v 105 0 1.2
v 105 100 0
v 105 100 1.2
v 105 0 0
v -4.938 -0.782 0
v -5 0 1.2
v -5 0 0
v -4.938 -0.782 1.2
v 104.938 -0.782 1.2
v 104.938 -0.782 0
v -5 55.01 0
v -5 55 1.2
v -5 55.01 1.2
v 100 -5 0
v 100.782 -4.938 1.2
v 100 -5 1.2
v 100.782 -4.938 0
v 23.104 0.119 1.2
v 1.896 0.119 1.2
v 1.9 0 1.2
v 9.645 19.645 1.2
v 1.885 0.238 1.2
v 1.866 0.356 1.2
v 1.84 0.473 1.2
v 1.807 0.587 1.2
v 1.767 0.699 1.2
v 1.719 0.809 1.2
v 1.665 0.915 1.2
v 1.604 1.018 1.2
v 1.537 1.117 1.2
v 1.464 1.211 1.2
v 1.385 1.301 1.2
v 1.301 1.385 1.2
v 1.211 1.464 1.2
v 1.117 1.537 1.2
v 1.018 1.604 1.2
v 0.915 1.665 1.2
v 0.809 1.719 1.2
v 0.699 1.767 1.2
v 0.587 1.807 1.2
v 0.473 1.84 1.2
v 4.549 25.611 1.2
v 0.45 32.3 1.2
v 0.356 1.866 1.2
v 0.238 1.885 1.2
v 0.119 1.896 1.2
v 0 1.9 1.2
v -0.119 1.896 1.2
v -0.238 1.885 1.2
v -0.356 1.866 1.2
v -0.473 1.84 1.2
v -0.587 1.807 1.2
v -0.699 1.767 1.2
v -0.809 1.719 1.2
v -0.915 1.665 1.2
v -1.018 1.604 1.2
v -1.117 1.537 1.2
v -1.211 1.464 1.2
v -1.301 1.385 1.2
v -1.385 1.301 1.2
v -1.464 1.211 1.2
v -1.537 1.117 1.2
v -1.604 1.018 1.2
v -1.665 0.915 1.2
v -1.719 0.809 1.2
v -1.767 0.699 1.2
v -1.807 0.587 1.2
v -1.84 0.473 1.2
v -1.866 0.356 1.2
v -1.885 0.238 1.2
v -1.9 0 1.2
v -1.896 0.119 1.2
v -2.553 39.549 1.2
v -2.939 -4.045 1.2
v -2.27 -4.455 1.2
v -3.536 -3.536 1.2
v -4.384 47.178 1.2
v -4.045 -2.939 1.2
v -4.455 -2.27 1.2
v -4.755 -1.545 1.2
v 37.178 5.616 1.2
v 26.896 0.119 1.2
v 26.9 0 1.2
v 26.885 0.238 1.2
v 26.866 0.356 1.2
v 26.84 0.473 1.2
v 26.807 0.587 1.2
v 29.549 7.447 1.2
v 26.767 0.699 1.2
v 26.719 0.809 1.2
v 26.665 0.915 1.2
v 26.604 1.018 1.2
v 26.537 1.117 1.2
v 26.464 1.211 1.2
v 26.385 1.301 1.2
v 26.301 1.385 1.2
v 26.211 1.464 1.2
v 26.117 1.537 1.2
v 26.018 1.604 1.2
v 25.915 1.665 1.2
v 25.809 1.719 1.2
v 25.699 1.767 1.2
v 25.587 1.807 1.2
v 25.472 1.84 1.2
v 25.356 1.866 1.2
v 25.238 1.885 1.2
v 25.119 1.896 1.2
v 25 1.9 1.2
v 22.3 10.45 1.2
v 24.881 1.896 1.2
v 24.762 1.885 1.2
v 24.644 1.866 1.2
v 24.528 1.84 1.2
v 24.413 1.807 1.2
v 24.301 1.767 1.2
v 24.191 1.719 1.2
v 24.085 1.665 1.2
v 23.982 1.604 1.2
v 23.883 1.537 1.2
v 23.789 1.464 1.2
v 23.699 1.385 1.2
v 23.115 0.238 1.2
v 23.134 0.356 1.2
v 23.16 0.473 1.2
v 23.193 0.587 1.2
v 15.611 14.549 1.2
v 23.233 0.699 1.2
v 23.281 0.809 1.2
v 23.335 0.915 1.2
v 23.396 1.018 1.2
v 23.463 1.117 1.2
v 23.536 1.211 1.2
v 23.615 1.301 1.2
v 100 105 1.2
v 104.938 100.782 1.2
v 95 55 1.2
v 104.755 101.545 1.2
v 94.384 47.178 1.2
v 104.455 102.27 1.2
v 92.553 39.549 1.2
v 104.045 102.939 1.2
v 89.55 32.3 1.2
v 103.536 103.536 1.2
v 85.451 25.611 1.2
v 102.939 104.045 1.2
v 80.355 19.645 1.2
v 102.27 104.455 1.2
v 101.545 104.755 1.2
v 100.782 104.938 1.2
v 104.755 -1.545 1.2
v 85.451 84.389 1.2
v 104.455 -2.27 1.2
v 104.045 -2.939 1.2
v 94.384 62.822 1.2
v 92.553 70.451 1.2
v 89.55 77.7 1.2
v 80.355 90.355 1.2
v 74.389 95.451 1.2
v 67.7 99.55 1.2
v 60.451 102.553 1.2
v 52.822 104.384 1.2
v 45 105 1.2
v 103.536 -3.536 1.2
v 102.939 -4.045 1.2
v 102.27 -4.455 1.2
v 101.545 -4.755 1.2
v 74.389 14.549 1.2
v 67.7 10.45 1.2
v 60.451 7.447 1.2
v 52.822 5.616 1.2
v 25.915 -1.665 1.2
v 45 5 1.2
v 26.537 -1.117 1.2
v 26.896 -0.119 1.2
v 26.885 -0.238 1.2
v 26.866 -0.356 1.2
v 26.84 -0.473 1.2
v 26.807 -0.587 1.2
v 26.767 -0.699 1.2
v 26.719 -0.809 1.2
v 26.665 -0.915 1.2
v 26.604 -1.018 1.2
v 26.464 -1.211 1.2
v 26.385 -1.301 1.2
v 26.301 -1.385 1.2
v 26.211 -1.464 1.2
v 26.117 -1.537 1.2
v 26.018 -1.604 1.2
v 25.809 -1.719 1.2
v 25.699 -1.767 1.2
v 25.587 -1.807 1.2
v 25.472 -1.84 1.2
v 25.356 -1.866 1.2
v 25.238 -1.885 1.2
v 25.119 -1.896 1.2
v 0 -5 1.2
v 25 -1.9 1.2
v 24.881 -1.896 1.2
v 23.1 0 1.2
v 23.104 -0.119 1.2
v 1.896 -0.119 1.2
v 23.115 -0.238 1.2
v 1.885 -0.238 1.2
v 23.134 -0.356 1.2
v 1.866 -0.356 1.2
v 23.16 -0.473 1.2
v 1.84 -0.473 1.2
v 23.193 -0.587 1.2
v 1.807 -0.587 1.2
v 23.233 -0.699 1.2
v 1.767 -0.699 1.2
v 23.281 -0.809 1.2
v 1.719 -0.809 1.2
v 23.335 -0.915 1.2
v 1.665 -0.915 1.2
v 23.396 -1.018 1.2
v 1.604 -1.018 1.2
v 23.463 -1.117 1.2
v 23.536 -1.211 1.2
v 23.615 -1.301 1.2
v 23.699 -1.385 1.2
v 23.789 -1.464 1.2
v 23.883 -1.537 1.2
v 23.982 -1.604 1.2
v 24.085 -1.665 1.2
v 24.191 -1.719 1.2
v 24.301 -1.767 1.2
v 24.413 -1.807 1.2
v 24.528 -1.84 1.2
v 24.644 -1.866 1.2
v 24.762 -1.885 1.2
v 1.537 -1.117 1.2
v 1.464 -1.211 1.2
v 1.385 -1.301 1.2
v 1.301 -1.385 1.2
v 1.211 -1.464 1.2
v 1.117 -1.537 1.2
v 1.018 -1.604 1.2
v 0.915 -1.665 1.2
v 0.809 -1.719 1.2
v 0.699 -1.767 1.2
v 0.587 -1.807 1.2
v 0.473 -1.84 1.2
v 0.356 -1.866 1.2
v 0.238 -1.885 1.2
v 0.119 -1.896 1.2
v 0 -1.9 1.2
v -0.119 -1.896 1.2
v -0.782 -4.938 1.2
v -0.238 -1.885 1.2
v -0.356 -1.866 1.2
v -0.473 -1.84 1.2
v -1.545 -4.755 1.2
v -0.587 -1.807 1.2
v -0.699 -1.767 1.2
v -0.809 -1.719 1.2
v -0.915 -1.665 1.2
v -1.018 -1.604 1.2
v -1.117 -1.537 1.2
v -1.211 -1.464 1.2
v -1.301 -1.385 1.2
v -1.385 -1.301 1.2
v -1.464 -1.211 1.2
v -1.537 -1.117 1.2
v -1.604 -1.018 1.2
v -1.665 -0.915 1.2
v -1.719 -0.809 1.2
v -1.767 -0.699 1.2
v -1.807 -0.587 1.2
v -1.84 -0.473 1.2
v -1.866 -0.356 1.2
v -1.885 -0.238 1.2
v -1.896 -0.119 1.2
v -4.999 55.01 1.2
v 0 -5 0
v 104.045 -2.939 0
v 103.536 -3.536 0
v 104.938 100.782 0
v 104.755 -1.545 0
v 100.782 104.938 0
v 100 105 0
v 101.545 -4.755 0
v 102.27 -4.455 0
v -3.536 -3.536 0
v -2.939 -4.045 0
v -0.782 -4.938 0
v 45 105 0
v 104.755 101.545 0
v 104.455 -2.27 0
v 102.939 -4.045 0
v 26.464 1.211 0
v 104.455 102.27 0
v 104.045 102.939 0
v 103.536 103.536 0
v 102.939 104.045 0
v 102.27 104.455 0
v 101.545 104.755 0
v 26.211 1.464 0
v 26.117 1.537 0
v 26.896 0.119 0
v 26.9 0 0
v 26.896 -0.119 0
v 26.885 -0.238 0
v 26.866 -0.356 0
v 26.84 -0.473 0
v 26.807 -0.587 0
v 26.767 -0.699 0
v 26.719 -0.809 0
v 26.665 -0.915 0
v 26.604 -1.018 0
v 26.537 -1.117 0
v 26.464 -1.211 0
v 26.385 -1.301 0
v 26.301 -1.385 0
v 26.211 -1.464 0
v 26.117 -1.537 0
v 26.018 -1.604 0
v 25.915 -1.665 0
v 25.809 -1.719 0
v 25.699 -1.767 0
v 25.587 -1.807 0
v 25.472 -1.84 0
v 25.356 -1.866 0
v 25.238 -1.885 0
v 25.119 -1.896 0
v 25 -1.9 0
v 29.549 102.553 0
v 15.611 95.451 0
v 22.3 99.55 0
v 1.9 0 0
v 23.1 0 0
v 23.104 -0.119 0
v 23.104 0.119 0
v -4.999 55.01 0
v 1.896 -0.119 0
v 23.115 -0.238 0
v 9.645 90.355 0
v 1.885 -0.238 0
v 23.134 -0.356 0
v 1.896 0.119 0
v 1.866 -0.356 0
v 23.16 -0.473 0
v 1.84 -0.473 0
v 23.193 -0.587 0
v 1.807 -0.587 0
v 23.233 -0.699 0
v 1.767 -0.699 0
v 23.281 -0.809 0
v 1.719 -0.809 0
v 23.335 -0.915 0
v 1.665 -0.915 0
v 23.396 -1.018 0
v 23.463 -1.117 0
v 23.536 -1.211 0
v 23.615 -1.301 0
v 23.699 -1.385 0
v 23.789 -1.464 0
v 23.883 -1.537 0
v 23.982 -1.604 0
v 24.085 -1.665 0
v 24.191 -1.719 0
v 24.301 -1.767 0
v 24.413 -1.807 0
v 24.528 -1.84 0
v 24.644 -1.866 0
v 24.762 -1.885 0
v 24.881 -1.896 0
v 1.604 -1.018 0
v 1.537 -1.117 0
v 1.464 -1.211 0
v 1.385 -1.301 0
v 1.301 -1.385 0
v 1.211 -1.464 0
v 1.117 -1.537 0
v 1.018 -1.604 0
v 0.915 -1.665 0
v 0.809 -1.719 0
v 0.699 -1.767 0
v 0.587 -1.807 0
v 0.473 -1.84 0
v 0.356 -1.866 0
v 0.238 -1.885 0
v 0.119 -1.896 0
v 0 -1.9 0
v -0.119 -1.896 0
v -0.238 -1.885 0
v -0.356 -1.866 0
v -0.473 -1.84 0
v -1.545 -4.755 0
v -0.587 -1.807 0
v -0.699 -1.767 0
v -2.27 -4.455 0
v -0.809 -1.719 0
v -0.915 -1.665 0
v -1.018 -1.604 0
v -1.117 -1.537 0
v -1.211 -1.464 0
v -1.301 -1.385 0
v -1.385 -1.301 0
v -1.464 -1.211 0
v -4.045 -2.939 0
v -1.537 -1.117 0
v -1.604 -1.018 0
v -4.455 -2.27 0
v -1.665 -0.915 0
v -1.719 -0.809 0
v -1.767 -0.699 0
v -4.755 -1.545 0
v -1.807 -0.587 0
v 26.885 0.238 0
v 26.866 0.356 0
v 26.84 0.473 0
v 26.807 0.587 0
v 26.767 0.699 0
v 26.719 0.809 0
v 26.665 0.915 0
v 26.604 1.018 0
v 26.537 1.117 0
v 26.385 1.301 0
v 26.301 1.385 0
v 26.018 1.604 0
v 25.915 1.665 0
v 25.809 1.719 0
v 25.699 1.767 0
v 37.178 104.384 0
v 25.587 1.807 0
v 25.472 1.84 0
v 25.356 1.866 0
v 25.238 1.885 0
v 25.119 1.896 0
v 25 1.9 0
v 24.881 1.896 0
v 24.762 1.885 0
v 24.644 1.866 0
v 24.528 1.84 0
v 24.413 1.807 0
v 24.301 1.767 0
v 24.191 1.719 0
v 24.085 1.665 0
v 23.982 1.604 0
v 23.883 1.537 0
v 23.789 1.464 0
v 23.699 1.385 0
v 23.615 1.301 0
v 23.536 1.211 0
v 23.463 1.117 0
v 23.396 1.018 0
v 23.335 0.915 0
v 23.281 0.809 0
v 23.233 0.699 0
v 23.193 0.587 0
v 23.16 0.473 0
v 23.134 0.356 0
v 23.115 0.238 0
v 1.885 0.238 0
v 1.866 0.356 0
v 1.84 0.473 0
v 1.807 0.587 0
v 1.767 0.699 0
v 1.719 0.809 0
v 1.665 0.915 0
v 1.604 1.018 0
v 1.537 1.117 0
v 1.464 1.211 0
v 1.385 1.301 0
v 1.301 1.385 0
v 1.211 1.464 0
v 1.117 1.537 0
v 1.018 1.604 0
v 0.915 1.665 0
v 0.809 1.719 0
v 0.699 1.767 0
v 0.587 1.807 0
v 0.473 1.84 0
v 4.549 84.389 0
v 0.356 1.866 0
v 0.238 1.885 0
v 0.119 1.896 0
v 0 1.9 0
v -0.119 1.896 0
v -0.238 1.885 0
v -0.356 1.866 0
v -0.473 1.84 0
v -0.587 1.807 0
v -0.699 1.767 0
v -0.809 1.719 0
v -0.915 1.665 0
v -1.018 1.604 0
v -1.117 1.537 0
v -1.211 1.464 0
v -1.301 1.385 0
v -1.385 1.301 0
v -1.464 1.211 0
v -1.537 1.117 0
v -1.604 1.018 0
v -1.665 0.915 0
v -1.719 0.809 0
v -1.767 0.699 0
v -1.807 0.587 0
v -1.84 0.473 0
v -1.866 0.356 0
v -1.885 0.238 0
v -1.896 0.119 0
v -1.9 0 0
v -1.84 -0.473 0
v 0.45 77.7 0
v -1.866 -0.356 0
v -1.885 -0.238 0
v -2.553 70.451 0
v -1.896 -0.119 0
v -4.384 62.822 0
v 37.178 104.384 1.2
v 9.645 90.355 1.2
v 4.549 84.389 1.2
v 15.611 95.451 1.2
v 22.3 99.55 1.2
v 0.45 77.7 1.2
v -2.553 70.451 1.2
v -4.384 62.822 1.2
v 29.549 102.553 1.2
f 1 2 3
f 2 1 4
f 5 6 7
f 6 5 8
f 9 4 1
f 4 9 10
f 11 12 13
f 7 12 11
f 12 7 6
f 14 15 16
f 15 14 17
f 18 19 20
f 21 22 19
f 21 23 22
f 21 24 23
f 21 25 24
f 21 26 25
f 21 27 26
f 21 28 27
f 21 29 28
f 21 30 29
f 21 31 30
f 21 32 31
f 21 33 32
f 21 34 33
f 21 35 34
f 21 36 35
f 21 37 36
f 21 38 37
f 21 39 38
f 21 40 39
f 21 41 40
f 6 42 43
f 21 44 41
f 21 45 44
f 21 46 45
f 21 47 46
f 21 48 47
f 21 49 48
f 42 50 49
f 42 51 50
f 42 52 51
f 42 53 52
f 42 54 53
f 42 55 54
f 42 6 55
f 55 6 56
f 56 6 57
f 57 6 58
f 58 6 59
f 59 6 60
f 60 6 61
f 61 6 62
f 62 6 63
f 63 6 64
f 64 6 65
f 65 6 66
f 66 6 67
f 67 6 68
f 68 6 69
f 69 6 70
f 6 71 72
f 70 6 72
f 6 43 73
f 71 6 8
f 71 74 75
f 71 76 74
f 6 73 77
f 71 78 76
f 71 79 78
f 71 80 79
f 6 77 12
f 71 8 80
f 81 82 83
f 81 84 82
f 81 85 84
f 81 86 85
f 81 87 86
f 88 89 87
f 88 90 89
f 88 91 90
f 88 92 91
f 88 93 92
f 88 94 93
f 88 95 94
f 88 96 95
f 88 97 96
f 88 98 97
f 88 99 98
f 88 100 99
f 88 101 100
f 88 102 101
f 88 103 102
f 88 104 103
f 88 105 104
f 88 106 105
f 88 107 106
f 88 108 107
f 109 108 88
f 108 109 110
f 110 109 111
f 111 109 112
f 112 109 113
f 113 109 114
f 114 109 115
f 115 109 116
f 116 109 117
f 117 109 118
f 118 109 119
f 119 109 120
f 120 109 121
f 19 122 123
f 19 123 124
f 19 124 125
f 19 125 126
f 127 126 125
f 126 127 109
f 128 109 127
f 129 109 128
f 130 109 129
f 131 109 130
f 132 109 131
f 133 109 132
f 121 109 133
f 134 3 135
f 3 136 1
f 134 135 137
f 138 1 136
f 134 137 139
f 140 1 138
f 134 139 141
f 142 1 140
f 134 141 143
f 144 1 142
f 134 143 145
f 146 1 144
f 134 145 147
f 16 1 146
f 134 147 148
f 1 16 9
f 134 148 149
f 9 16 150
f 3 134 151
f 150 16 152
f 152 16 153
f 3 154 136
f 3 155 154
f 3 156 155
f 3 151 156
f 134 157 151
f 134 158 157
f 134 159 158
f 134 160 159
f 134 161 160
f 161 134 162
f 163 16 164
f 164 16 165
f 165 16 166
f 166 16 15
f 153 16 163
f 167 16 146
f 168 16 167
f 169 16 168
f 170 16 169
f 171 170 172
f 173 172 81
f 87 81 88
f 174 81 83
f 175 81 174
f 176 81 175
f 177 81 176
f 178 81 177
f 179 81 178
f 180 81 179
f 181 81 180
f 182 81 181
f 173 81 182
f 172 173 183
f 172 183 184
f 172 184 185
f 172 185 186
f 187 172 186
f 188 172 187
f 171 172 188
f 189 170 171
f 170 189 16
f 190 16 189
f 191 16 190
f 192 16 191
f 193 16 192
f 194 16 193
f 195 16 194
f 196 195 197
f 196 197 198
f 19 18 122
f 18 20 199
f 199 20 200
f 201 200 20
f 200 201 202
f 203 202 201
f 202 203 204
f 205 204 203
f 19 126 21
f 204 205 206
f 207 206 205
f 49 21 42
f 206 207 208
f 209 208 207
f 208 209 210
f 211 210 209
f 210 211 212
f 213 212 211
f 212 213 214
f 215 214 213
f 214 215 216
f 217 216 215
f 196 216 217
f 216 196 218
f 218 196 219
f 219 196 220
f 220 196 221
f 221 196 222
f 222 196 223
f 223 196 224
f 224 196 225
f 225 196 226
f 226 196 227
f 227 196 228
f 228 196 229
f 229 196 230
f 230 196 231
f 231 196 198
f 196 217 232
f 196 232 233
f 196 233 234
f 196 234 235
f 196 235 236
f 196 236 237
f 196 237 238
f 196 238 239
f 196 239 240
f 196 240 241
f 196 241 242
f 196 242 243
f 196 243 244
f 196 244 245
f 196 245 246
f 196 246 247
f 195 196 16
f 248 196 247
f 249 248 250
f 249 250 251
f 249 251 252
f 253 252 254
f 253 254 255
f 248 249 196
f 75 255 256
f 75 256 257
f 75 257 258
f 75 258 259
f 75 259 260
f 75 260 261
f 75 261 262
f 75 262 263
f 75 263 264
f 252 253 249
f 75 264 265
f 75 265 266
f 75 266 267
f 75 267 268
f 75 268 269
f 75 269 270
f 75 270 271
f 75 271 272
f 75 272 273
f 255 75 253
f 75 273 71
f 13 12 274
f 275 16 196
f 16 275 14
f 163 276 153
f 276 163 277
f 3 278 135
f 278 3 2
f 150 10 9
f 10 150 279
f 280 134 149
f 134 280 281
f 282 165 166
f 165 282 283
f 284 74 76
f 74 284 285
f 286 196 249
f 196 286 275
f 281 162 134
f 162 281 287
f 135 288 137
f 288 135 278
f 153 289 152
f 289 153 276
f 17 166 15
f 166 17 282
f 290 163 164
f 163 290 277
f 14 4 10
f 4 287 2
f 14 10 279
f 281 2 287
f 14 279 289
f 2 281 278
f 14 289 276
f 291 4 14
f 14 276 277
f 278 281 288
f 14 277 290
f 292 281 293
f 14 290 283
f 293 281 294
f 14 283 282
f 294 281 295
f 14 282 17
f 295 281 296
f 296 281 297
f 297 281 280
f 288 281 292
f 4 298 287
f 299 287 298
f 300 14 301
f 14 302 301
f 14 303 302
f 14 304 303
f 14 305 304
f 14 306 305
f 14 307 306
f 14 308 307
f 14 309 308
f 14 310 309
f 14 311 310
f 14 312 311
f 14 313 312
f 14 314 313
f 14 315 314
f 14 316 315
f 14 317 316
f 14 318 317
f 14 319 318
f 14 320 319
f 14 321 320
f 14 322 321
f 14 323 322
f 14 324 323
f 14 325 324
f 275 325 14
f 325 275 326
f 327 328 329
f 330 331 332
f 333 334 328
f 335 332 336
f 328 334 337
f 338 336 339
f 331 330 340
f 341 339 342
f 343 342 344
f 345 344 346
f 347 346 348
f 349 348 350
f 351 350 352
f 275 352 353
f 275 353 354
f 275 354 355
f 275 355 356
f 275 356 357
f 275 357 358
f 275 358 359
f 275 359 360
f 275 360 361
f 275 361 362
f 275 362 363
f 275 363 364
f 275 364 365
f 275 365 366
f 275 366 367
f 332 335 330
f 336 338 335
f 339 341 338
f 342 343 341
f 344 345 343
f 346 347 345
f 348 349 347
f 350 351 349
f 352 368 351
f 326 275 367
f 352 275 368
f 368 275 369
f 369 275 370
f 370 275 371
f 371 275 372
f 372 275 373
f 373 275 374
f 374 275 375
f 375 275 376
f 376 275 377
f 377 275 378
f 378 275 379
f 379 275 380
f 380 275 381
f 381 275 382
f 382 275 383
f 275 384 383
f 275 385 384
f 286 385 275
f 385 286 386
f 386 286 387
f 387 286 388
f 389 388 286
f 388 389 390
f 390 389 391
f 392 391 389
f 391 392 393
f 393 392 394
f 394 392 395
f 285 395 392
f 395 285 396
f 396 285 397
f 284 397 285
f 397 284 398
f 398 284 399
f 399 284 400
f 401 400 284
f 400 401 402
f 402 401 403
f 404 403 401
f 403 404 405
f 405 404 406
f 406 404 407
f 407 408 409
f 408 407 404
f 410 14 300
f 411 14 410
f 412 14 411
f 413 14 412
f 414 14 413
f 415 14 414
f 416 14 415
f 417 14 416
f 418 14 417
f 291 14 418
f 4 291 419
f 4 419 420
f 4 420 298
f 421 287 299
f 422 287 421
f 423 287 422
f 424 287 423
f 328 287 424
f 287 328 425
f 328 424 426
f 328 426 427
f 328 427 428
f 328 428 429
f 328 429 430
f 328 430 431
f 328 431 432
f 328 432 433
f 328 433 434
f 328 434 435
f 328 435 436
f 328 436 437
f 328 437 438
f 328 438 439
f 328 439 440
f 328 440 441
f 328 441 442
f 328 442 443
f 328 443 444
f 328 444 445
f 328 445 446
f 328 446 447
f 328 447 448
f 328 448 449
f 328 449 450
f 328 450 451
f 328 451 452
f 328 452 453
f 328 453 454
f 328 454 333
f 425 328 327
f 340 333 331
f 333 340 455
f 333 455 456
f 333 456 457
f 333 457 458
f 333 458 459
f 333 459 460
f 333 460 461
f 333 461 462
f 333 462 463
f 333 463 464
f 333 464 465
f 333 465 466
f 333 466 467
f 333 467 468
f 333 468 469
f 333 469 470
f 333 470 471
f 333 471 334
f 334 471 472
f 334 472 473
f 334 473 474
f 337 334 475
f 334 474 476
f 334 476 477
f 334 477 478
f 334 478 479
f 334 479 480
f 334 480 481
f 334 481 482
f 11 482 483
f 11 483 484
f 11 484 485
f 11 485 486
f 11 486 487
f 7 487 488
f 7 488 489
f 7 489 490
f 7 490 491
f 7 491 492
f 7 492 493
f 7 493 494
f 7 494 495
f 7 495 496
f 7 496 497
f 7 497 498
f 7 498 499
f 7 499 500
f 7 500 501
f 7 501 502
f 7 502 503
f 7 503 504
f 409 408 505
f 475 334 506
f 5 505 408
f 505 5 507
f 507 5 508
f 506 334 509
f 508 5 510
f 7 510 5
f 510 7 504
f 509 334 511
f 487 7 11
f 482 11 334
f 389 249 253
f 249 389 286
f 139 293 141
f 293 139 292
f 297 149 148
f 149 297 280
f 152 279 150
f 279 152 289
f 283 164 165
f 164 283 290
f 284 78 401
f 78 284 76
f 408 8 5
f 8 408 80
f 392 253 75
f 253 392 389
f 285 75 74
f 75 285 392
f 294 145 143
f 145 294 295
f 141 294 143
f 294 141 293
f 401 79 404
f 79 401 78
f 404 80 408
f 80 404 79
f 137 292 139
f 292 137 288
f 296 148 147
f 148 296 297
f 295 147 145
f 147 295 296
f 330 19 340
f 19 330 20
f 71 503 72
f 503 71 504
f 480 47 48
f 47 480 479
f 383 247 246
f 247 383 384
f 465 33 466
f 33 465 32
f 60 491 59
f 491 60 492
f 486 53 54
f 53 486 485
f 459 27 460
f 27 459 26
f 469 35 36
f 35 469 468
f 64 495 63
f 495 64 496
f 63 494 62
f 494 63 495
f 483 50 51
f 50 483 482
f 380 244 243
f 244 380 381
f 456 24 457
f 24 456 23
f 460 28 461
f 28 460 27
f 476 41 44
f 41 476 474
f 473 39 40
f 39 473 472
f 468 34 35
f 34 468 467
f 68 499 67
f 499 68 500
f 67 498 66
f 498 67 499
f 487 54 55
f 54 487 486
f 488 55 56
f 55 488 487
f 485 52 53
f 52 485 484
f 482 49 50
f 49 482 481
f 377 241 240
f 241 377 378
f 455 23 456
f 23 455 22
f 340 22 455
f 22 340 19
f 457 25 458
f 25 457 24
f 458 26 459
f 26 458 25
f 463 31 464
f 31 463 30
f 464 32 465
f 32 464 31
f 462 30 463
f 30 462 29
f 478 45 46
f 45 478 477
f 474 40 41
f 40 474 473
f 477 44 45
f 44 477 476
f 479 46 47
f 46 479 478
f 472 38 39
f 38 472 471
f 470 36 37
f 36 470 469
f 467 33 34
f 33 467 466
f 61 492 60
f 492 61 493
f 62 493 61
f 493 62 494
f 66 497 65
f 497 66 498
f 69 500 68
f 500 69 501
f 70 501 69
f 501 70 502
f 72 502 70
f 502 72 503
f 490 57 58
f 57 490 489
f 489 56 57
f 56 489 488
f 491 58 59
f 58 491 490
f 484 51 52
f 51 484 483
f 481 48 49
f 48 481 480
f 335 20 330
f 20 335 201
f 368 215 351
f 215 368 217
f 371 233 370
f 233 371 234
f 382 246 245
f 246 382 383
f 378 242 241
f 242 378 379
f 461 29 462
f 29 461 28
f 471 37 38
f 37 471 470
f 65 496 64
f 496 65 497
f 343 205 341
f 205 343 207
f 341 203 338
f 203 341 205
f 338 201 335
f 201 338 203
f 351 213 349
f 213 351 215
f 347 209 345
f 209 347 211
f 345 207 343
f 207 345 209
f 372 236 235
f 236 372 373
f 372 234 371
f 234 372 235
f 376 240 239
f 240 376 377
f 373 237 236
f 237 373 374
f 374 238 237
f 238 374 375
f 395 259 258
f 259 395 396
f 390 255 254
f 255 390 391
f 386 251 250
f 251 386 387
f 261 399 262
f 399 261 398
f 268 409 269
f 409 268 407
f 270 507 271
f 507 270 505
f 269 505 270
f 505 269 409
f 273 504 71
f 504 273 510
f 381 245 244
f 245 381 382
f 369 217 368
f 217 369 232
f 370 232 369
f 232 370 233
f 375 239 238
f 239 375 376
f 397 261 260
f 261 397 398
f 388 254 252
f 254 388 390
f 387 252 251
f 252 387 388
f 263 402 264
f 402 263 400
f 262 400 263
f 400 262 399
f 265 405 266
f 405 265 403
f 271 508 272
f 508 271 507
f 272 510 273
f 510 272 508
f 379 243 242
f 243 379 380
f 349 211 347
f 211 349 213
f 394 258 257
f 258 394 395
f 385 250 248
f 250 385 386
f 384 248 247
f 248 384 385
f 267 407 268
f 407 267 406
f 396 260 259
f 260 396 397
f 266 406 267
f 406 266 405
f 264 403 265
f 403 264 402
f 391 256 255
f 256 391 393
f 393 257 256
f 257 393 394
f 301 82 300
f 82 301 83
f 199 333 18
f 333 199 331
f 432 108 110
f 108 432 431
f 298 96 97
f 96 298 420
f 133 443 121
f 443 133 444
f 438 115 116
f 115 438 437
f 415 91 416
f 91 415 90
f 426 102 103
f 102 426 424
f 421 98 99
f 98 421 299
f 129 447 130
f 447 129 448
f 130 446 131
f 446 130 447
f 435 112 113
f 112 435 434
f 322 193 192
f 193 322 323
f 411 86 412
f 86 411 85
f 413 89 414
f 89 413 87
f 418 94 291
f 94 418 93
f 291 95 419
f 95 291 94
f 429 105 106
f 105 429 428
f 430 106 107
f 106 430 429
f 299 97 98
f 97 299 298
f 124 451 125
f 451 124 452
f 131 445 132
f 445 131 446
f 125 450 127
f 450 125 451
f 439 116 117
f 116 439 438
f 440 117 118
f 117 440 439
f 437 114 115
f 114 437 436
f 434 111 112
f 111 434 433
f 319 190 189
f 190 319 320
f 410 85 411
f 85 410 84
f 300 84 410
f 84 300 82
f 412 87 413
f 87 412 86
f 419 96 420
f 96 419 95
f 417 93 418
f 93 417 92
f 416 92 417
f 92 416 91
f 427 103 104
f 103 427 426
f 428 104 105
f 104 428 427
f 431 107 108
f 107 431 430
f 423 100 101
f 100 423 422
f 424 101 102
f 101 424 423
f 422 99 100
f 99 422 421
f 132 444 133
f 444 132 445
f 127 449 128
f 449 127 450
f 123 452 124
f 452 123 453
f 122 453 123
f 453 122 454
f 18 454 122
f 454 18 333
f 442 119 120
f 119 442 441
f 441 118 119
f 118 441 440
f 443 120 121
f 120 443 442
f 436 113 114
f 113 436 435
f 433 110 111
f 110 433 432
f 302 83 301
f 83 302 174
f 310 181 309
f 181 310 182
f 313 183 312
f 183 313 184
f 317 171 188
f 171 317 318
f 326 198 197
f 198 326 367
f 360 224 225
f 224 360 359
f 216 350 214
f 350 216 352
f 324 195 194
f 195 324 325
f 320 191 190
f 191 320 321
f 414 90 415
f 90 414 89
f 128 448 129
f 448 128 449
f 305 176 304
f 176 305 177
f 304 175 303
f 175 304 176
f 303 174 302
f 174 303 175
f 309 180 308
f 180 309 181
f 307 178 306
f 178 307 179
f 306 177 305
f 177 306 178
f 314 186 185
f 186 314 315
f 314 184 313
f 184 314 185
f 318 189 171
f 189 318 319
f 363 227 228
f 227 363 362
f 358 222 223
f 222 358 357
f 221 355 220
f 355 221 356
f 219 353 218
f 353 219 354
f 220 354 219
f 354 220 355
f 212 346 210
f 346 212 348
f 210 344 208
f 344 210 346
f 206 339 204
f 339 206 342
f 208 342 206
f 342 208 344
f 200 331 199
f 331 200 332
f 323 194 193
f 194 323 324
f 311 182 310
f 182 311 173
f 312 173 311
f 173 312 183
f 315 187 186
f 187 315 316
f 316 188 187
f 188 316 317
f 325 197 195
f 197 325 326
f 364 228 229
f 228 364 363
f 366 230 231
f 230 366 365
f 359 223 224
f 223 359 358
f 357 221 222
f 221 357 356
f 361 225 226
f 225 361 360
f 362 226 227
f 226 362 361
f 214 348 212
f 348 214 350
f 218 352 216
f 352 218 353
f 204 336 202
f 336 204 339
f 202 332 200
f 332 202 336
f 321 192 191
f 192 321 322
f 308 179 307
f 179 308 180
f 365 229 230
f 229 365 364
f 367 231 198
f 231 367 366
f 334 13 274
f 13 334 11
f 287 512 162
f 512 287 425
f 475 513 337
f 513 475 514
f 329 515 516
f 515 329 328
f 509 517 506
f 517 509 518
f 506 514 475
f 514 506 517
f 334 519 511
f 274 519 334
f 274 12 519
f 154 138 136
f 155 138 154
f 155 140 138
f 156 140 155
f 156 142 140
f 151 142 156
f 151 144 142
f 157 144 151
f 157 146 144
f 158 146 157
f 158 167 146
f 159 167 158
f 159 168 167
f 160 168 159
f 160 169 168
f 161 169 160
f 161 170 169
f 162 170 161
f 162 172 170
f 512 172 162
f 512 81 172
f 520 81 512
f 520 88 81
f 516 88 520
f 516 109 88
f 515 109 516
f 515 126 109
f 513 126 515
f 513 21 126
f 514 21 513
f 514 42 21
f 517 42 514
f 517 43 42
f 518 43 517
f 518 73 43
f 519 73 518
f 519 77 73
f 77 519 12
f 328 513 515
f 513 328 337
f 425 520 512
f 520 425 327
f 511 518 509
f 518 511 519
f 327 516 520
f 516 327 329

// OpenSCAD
// file: ../SRC/polyScrewThread_r1.scad
/*
 *    polyScrewThread_r1.scad    by aubenc @ Thingiverse
 *
 * This script contains the library modules that can be used to generate
 * threaded rods, screws and nuts.
 *
 * http://www.thingiverse.com/thing:8796
 *
 * CC Public Domain
 */


/* Example:
 * Just a 100mm long threaded rod.
 *
 * screw_thread(15,   // Outer diameter of the thread
 *               4,   // Step, traveling length per turn, also, tooth height, whatever...
 *              55,   // Degrees for the shape of the tooth 
 *                       (XY plane = 0, Z = 90, btw, 0 and 90 will/should not work...)
 *             100,   // Length (Z) of the tread
 *            PI/2,   // Resolution, one face each "PI/2" mm of the perimeter, 
 *               0);  // Countersink style:
 *                         -2 - Not even flat ends
 *                         -1 - Bottom (countersink'd and top flat)
 *                          0 - None (top and bottom flat)
 *                          1 - Top (bottom flat)
 *                          2 - Both (countersink'd)
 */
module screw_thread(od,st,lf0,lt,rs,cs)
{
    or=od/2;
    ir=or-st/2*cos(lf0)/sin(lf0);
    pf=2*PI*or;
    sn=floor(pf/rs);
    lfxy=360/sn;
    ttn=round(lt/st+1);
    zt=st/sn;

    intersection()
    {
        if (cs >= -1)
        {
           thread_shape(cs,lt,or,ir,sn,st);
        }

        full_thread(ttn,st,sn,zt,lfxy,or,ir);
    }
}

/* Example.
 * A nut for the thread rod example.
 *
 * hexa_nut(24,  // Distance between flats
 *           8,  // Height 
 *           4,  // Step height (the half will be used to countersink the ends)
 *          55,  // Degrees (same as used for the screw_thread example)
 *          15,  // Outer diameter of the thread to match
 *         0.5)  // Resolution, you may want to set this to small values
 *                  (quite high res) to minimize overhang issues
 *
 */
module hex_nut(df,hg,sth,clf,cod,crs)
{

    difference()
    {
        hex_head(hg,df);

        hex_countersink_ends(sth/2,cod,clf,crs,hg);

        screw_thread(cod,sth,clf,hg,crs,-2);
    }
}


module hex_screw(od,st,lf0,lt,rs,cs,df,hg,ntl,ntd)
{
    ntr=od/2-(st/2)*cos(lf0)/sin(lf0);

    union()
    {
        hex_head(hg,df);

        translate([0,0,hg])
        if ( ntl == 0 )
        {
            cylinder(h=0.01, r=ntr, center=true);
        }
        else
        {
            if ( ntd == -1 )
            {
                cylinder(h=ntl+0.01, r=ntr, $fn=floor(od*PI/rs), center=false);
            }
            else if ( ntd == 0 )
            {
                union()
                {
                    cylinder(h=ntl-st/2,
                             r=od/2, $fn=floor(od*PI/rs), center=false);

                    translate([0,0,ntl-st/2])
                    cylinder(h=st/2,
                             r1=od/2, r2=ntr, 
                             $fn=floor(od*PI/rs), center=false);
                }
            }
            else
            {
                cylinder(h=ntl, r=ntd/2, $fn=ntd*PI/rs, center=false);
            }
        }

        translate([0,0,ntl+hg]) screw_thread(od,st,lf0,lt,rs,cs);
    }
}

module hex_screw_0(od,st,lf0,lt,rs,cs,df,hg,ntl,ntd)
{
    ntr=od/2-(st/2)*cos(lf0)/sin(lf0);

    union()
    {
        hex_head_0(hg,df);

        translate([0,0,hg])
        if ( ntl == 0 )
        {
            cylinder(h=0.01, r=ntr, center=true);
        }
        else
        {
            if ( ntd == -1 )
            {
                cylinder(h=ntl+0.01, r=ntr, $fn=floor(od*PI/rs), center=false);
            }
            else if ( ntd == 0 )
            {
                union()
                {
                    cylinder(h=ntl-st/2,
                             r=od/2, $fn=floor(od*PI/rs), center=false);

                    translate([0,0,ntl-st/2])
                    cylinder(h=st/2,
                             r1=od/2, r2=ntr, 
                             $fn=floor(od*PI/rs), center=false);
                }
            }
            else
            {
                cylinder(h=ntl, r=ntd/2, $fn=ntd*PI/rs, center=false);
            }
        }

        translate([0,0,ntl+hg]) screw_thread(od,st,lf0,lt,rs,cs);
    }
}

module thread_shape(cs,lt,or,ir,sn,st)
{
    if ( cs == 0 )
    {
        cylinder(h=lt, r=or, $fn=sn, center=false);
    }
    else
    {
        union()
        {
            translate([0,0,st/2])
              cylinder(h=lt-st+0.005, r=or, $fn=sn, center=false);

            if ( cs == -1 || cs == 2 )
            {
                cylinder(h=st/2, r1=ir, r2=or, $fn=sn, center=false);
            }
            else
            {
                cylinder(h=st/2, r=or, $fn=sn, center=false);
            }

            translate([0,0,lt-st/2])
            if ( cs == 1 || cs == 2 )
            {
                  cylinder(h=st/2, r1=or, r2=ir, $fn=sn, center=false);
            }
            else
            {
                cylinder(h=st/2, r=or, $fn=sn, center=false);
            }
        }
    }
}

module full_thread(ttn,st,sn,zt,lfxy,or,ir)
{
  if(ir >= 0.2)
  {
    for(i=[0:ttn-1])
    {
        for(j=[0:sn-1])
			assign( pt = [	[0,                  0,                  i*st-st            ],
                        [ir*cos(j*lfxy),     ir*sin(j*lfxy),     i*st+j*zt-st       ],
                        [ir*cos((j+1)*lfxy), ir*sin((j+1)*lfxy), i*st+(j+1)*zt-st   ],
								[0,0,i*st],
                        [or*cos(j*lfxy),     or*sin(j*lfxy),     i*st+j*zt-st/2     ],
                        [or*cos((j+1)*lfxy), or*sin((j+1)*lfxy), i*st+(j+1)*zt-st/2 ],
                        [ir*cos(j*lfxy),     ir*sin(j*lfxy),     i*st+j*zt          ],
                        [ir*cos((j+1)*lfxy), ir*sin((j+1)*lfxy), i*st+(j+1)*zt      ],
                        [0,                  0,                  i*st+st            ]	])
        {
            polyhedron(points=pt,
              		  triangles=[	[1,0,3],[1,3,6],[6,3,8],[1,6,4],
											[0,1,2],[1,4,2],[2,4,5],[5,4,6],[5,6,7],[7,6,8],
											[7,8,3],[0,2,3],[3,2,7],[7,2,5]	]);
        }
    }
  }
  else
  {
    echo("Step Degrees too agresive, the thread will not be made!!");
    echo("Try to increase de value for the degrees and/or...");
    echo(" decrease the pitch value and/or...");
    echo(" increase the outer diameter value.");
  }
}

module hex_head(hg,df)
{
	rd0=df/2/sin(60);
	x0=0;	x1=df/2;	x2=x1+hg/2;
	y0=0;	y1=hg/2;	y2=hg;

	intersection()
	{
	   cylinder(h=hg, r=rd0, $fn=6, center=false);

		rotate_extrude(convexity=10, $fn=6*round(df*PI/6/0.5))
		polygon([ [x0,y0],[x1,y0],[x2,y1],[x1,y2],[x0,y2] ]);
	}
}

module hex_head_0(hg,df)
{
    cylinder(h=hg, r=df/2/sin(60), $fn=6, center=false);
}

module hex_countersink_ends(chg,cod,clf,crs,hg)
{
    translate([0,0,-0.1])
    cylinder(h=chg+0.01, 
             r1=cod/2, 
             r2=cod/2-(chg+0.1)*cos(clf)/sin(clf),
             $fn=floor(cod*PI/crs), center=false);

    translate([0,0,hg-chg+0.1])
    cylinder(h=chg+0.01, 
             r1=cod/2-(chg+0.1)*cos(clf)/sin(clf),
             r2=cod/2, 
             $fn=floor(cod*PI/crs), center=false);
}
// file: ../SRC/WINDGAUGE01A_R05.scad
$fn=40; // model faces resolution.
include <../configuration.scad>


include <polyScrewThread_r1.scad>

PI=3.141592;




//Držák ložisek, rotoru, senzoru

module WINDGAUGE01A_R05()
    {
    difference()
    {   
  //základní tvar      
  minkowski()
    {
	cube([R05_delka_kridla,R05_vyska_kridla,R02_sila_materialu_kridla/2]);          
        cylinder(r=R02_zavit_vyska/2,h=R02_sila_materialu_kridla/2);
    }
    
  //otvory pro šroub
  translate([0,0,-0.01])
            cylinder (h = R02_sila_materialu_kridla+1, r=prumer_sroubu/2+0.2, $fn=100);    
    
      translate([R02_vzdalenost_der,0,-0.01])
            cylinder (h = R02_sila_materialu_kridla+1, r=prumer_sroubu/2+0.2, $fn=100);     
    
 translate([-R02_zavit_vyska/2,R05_vyska_kridla/2+R02_zavit_vyska/2+0.01,-0.01])    
    cube([R05_vyska_kridla/2,R05_vyska_kridla/2,R02_sila_materialu_kridla+0.02]);
    
    }
    
    //kolo
     translate([R05_vyska_kridla/2-R02_zavit_vyska/2,R05_vyska_kridla/2+R02_zavit_vyska/2,0]) 
    cylinder(r=R05_vyska_kridla/2,h=R02_sila_materialu_kridla);
        }
// file: ../configuration.scad
$fn=40; // model faces resolution.

//OBECNE PARAMETRY 
//----------------------------------------------------------------
//----------------------------------------------------------------
//WINDGAUGE02A_S02 - Parametry pro hlavni valec anemometru
S01_hloubka_zavitu=4;
S01_vyska=80; //80
S01_prumer_vnitrni=46;
S01_sila_materialu=1.2;
S01_vyska_horni_zavit=10;
S01_vyska_spodniho_zavitu=10;
S01_sila_drzaku_RJ11=3; //vyška drážky
S01_hrana_A_RJ11=12.3;
S01_hrana_B_RJ11=19;
S01_tolerance_zavit=1.5;

//Rozměry ložiska se závity
//LO_spodni_prumer=22;
LO_spodni_prumer=17.2; //bez krytu
LO_vyska_bez_krytu=13;
LO_doraz_prumer=44.3;
LO_horni_prumer=7.7;
LO_vyska_spodni_doraz=5;
LO_vyska_horni_doraz=9;
LO_vyska_dorazu=0;





//Obecné parametry
prumer_osicky=5.1;

//Rozmery modulu se senzorem
senzor_delka=22;
senzor_sirka=20.4;
senzor_sila=2;


//Parametry loziska
lozisko_prumer_vnitrni=4.9;
lozisko_prumer_vnejsi=16.1;
lozisko_vyska=5;
lozisko_prekryv=1.5;

//Parametry magnetu
magnet_prumer=6.3;
magnet_vyska=5;
magnet_zapusteni=2;
magnet_tolerance_prumeru=0.2;

//Parametry sroubu
prumer_sroubu=3.4;
prumer_hlavy_sroubu=6;
vyska_hlavy_sroubu=4;
vyska_matky=3;
sirka_matky=6.7;

sirka_matky_tol=0.175;
prumer_orechu=10;

//WINDGAUGE02A_R01 //pro lopatku
L01_hrana_drzaku_a=10;
L01_hrana_drzaku_b=3;
L01_delka_uchytu=19;
L01_prumer_lopatky=40;
L01_sila_materialu_lopatky=0.9;

//WINDGAUGE02A_D01 //uchyt velky
D01_material_pod_zavitem=5;
D01_material_za_zavitem=3;
D01_material_pred_zavitem=2;
D01_delka_tyce=40;
D01_sirka_tyce=10;

//WINDGAUGE02A_D02 //uchyt na sloup
D02_sila_materialu=4;
D02_vyska_uchytky=40;
D02_prumer_obruby=27; // 3/4 trubka
D02_delka_celeho_uchytu=70;
D02_dotahova_vzdalenost=1.5;
D02_prumer_uchytneho_sroubu=4.2;
D02_sirka_matky=9.2; //pro M4
D02_vyska_matky=3;


//WINDGAUGE02A_R01 //rotor s prekritim statoru
R01_vyska_preryti_statoru=10;
R01_sila_materialu_pro_prekriti=1.3;
R01_mezera_mezi_statorem_rotorem=3;

//WINDGAUGE02A_R03 //drzak magnetu
R05_sirka_matky=10;



R03_prumer_zavitu=40;
R04_zavit_vyska=5;
R02_zavit_vyska=10;
R01_zavit_vyska=5;
R03_mezera_mezi_statorem_rotorem=3;

R02_delka_kridla=45;
R02_vzdalenost_der=25;

R02_delka_vyrovnnavaci_tyce=35;
R02_hrana_drzaku=13;
R02_sila_materialu_pod_tyci=5;
R02_sila_materialu_kridla=1.2;
R02_sila_materialu_kridla_tolerance=0.3;

R05_vyska_kridla=100;
R05_delka_kridla=100;
// main file
$fn=100; // model faces resolution.
include <../configuration.scad>

use <../SRC/WINDGAUGE01A_R05.scad>

//neni potřeba
    translate([0,0,0])
        rotate([0,0, 0])
            WINDGAUGE01A_R05 ();   
